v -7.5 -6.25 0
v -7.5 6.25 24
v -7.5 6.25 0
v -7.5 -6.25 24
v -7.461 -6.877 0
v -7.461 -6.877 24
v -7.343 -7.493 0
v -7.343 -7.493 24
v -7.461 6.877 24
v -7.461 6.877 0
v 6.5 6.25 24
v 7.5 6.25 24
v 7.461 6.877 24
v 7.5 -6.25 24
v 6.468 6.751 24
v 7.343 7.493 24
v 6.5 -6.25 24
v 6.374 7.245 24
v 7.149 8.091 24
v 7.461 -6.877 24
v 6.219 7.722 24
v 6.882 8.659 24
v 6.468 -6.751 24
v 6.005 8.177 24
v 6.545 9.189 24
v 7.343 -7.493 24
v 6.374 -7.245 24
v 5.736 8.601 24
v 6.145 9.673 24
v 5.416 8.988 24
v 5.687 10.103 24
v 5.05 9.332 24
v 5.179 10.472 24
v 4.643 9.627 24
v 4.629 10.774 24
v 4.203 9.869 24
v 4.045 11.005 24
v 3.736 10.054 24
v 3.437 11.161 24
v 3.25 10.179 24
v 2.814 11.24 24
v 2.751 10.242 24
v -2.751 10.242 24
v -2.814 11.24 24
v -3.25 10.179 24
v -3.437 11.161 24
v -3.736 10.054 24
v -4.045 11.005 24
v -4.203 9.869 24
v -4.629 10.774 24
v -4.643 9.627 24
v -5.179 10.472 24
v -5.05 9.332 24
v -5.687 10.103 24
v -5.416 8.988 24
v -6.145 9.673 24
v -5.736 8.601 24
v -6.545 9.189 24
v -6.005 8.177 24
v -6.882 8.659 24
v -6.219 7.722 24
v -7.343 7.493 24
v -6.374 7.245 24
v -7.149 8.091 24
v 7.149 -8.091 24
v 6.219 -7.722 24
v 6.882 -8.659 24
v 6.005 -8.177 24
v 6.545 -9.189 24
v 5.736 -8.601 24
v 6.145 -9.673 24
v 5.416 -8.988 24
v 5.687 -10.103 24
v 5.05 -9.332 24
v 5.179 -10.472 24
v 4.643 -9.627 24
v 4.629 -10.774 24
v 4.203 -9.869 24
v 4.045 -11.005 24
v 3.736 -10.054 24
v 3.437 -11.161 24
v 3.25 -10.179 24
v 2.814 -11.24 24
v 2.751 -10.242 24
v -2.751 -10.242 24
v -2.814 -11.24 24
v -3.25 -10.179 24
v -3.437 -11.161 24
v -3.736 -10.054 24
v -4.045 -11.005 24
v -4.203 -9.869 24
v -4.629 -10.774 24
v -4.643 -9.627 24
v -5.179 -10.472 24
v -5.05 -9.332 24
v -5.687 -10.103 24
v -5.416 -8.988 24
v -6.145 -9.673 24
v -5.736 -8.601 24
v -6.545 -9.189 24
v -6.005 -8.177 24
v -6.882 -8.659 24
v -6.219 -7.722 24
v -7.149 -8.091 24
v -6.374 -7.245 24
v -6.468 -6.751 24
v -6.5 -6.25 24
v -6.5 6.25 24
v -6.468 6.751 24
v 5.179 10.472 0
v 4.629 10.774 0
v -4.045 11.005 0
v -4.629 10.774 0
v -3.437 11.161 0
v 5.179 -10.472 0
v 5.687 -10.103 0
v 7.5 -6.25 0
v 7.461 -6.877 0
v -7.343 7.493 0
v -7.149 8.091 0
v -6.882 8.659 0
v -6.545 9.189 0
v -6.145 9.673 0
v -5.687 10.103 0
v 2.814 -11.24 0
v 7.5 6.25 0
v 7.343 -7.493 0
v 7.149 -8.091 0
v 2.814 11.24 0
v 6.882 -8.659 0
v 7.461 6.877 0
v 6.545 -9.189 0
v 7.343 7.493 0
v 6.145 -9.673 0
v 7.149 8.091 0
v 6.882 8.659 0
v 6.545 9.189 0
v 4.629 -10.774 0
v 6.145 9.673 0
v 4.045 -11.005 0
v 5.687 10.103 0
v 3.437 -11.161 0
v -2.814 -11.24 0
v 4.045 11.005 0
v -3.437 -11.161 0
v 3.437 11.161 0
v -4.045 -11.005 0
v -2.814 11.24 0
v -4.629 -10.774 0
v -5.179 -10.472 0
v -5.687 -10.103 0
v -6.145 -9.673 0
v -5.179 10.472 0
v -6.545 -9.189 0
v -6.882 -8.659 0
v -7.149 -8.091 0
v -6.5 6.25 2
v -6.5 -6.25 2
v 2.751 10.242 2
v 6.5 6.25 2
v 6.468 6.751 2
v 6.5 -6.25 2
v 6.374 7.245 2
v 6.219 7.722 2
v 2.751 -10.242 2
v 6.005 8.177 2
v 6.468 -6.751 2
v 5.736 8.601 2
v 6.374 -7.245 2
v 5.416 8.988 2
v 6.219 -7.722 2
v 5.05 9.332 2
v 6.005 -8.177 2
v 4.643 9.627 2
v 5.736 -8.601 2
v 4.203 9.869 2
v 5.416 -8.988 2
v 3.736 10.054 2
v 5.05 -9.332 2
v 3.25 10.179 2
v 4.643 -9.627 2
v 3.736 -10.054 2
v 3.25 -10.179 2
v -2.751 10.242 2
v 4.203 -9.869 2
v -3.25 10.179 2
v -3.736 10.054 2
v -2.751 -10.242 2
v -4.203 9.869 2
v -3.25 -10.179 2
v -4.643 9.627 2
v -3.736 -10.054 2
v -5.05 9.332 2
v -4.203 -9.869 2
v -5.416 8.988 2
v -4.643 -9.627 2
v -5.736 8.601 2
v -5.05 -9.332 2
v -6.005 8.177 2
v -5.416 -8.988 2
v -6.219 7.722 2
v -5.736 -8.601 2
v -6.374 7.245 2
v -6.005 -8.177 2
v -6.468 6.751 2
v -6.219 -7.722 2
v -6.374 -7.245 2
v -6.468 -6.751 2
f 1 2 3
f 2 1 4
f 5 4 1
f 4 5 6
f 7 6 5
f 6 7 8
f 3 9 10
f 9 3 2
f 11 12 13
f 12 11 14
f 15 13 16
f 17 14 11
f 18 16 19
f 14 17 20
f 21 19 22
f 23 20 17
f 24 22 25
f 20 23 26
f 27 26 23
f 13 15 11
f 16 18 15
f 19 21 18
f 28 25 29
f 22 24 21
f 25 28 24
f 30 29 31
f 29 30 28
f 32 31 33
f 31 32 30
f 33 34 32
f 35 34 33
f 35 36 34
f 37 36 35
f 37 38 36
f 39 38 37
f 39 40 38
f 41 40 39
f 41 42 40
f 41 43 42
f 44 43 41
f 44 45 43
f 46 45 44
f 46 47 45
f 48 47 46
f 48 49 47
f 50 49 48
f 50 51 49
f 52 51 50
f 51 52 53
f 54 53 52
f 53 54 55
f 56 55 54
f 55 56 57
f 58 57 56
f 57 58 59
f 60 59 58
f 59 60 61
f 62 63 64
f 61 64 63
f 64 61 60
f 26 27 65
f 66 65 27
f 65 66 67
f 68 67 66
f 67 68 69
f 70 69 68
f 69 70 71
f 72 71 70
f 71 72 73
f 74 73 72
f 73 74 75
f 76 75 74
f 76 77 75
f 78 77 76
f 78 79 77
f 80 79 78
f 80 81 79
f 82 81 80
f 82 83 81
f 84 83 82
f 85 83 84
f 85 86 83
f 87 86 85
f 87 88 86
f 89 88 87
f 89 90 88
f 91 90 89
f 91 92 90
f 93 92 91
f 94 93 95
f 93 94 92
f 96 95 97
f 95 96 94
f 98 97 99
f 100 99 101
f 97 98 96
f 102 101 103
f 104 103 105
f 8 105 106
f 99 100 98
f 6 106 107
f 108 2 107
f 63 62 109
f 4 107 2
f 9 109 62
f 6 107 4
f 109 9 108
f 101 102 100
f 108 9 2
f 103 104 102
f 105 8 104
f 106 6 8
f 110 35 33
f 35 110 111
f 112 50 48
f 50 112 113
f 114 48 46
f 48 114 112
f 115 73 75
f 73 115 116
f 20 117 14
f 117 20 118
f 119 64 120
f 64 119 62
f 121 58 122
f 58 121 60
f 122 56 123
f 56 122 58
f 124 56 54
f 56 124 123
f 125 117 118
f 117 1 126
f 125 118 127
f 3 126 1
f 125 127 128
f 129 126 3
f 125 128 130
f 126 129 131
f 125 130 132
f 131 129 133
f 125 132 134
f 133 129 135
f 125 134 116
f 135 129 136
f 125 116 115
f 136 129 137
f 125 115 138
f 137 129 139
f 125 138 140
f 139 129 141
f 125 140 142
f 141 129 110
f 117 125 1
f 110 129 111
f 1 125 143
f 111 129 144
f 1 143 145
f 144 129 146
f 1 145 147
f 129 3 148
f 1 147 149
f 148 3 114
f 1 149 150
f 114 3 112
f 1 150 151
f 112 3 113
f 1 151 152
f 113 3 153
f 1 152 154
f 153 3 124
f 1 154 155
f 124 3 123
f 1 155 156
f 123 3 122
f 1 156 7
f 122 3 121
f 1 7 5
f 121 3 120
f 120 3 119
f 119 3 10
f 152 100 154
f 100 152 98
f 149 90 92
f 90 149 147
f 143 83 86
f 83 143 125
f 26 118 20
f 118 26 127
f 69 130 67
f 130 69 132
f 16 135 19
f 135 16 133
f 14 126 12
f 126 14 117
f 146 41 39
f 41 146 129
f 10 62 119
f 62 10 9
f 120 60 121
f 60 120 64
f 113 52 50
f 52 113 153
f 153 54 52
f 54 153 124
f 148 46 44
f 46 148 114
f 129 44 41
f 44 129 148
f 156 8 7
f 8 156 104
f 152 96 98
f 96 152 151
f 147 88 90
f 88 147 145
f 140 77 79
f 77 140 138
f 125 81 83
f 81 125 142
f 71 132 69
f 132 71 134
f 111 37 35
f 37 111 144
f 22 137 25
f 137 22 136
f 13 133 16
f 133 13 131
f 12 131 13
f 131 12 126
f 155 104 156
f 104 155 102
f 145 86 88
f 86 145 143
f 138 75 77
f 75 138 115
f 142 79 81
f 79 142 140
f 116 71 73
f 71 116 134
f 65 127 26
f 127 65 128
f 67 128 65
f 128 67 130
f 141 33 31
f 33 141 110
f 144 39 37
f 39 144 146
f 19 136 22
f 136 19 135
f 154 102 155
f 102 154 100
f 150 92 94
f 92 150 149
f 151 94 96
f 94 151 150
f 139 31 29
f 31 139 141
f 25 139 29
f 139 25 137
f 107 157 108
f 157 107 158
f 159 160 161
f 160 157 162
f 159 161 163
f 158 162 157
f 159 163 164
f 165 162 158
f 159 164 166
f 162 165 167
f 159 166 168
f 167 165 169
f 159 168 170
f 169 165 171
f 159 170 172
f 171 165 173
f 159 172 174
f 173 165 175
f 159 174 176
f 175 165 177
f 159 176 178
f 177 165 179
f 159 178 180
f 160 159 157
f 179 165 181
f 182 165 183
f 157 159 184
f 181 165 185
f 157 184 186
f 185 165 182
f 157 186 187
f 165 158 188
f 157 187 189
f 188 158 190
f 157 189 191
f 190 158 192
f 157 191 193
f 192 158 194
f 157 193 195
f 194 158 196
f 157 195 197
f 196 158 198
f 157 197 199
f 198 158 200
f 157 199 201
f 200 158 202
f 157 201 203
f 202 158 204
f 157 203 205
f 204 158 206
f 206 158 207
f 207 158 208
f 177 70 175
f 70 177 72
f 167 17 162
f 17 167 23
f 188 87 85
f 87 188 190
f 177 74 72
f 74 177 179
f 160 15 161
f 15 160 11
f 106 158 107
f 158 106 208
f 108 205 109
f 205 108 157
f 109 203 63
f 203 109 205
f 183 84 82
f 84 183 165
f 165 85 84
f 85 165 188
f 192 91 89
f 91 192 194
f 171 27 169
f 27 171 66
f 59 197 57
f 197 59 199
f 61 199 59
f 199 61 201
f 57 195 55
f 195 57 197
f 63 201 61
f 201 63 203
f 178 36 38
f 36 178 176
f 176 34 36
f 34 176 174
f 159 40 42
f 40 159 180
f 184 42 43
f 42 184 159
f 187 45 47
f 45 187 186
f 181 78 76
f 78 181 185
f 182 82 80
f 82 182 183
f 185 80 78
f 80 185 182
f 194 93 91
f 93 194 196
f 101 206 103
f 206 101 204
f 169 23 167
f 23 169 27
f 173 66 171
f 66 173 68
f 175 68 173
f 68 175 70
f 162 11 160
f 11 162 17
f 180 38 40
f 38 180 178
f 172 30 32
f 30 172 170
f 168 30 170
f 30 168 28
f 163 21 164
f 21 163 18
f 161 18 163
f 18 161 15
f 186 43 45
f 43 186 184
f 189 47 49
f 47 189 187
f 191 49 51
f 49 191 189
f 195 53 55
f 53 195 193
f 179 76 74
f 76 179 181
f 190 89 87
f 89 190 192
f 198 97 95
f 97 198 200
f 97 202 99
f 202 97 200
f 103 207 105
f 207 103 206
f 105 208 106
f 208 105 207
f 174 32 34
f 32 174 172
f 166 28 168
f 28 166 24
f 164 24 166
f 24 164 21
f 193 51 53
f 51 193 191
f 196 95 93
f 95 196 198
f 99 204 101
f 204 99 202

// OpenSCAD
$fn = 50;


difference() {
	union() {
		hull() {
			translate(v = [-2.5000000000, 6.2500000000, 0]) {
				cylinder(h = 24, r = 5);
			}
			translate(v = [2.5000000000, 6.2500000000, 0]) {
				cylinder(h = 24, r = 5);
			}
			translate(v = [-2.5000000000, -6.2500000000, 0]) {
				cylinder(h = 24, r = 5);
			}
			translate(v = [2.5000000000, -6.2500000000, 0]) {
				cylinder(h = 24, r = 5);
			}
		}
	}
	union() {
		translate(v = [0, 0, 2]) {
			hull() {
				translate(v = [-2.5000000000, 6.2500000000, 0]) {
					cylinder(h = 22, r = 4);
				}
				translate(v = [2.5000000000, 6.2500000000, 0]) {
					cylinder(h = 22, r = 4);
				}
				translate(v = [-2.5000000000, -6.2500000000, 0]) {
					cylinder(h = 22, r = 4);
				}
				translate(v = [2.5000000000, -6.2500000000, 0]) {
					cylinder(h = 22, r = 4);
				}
			}
		}
	}
}
